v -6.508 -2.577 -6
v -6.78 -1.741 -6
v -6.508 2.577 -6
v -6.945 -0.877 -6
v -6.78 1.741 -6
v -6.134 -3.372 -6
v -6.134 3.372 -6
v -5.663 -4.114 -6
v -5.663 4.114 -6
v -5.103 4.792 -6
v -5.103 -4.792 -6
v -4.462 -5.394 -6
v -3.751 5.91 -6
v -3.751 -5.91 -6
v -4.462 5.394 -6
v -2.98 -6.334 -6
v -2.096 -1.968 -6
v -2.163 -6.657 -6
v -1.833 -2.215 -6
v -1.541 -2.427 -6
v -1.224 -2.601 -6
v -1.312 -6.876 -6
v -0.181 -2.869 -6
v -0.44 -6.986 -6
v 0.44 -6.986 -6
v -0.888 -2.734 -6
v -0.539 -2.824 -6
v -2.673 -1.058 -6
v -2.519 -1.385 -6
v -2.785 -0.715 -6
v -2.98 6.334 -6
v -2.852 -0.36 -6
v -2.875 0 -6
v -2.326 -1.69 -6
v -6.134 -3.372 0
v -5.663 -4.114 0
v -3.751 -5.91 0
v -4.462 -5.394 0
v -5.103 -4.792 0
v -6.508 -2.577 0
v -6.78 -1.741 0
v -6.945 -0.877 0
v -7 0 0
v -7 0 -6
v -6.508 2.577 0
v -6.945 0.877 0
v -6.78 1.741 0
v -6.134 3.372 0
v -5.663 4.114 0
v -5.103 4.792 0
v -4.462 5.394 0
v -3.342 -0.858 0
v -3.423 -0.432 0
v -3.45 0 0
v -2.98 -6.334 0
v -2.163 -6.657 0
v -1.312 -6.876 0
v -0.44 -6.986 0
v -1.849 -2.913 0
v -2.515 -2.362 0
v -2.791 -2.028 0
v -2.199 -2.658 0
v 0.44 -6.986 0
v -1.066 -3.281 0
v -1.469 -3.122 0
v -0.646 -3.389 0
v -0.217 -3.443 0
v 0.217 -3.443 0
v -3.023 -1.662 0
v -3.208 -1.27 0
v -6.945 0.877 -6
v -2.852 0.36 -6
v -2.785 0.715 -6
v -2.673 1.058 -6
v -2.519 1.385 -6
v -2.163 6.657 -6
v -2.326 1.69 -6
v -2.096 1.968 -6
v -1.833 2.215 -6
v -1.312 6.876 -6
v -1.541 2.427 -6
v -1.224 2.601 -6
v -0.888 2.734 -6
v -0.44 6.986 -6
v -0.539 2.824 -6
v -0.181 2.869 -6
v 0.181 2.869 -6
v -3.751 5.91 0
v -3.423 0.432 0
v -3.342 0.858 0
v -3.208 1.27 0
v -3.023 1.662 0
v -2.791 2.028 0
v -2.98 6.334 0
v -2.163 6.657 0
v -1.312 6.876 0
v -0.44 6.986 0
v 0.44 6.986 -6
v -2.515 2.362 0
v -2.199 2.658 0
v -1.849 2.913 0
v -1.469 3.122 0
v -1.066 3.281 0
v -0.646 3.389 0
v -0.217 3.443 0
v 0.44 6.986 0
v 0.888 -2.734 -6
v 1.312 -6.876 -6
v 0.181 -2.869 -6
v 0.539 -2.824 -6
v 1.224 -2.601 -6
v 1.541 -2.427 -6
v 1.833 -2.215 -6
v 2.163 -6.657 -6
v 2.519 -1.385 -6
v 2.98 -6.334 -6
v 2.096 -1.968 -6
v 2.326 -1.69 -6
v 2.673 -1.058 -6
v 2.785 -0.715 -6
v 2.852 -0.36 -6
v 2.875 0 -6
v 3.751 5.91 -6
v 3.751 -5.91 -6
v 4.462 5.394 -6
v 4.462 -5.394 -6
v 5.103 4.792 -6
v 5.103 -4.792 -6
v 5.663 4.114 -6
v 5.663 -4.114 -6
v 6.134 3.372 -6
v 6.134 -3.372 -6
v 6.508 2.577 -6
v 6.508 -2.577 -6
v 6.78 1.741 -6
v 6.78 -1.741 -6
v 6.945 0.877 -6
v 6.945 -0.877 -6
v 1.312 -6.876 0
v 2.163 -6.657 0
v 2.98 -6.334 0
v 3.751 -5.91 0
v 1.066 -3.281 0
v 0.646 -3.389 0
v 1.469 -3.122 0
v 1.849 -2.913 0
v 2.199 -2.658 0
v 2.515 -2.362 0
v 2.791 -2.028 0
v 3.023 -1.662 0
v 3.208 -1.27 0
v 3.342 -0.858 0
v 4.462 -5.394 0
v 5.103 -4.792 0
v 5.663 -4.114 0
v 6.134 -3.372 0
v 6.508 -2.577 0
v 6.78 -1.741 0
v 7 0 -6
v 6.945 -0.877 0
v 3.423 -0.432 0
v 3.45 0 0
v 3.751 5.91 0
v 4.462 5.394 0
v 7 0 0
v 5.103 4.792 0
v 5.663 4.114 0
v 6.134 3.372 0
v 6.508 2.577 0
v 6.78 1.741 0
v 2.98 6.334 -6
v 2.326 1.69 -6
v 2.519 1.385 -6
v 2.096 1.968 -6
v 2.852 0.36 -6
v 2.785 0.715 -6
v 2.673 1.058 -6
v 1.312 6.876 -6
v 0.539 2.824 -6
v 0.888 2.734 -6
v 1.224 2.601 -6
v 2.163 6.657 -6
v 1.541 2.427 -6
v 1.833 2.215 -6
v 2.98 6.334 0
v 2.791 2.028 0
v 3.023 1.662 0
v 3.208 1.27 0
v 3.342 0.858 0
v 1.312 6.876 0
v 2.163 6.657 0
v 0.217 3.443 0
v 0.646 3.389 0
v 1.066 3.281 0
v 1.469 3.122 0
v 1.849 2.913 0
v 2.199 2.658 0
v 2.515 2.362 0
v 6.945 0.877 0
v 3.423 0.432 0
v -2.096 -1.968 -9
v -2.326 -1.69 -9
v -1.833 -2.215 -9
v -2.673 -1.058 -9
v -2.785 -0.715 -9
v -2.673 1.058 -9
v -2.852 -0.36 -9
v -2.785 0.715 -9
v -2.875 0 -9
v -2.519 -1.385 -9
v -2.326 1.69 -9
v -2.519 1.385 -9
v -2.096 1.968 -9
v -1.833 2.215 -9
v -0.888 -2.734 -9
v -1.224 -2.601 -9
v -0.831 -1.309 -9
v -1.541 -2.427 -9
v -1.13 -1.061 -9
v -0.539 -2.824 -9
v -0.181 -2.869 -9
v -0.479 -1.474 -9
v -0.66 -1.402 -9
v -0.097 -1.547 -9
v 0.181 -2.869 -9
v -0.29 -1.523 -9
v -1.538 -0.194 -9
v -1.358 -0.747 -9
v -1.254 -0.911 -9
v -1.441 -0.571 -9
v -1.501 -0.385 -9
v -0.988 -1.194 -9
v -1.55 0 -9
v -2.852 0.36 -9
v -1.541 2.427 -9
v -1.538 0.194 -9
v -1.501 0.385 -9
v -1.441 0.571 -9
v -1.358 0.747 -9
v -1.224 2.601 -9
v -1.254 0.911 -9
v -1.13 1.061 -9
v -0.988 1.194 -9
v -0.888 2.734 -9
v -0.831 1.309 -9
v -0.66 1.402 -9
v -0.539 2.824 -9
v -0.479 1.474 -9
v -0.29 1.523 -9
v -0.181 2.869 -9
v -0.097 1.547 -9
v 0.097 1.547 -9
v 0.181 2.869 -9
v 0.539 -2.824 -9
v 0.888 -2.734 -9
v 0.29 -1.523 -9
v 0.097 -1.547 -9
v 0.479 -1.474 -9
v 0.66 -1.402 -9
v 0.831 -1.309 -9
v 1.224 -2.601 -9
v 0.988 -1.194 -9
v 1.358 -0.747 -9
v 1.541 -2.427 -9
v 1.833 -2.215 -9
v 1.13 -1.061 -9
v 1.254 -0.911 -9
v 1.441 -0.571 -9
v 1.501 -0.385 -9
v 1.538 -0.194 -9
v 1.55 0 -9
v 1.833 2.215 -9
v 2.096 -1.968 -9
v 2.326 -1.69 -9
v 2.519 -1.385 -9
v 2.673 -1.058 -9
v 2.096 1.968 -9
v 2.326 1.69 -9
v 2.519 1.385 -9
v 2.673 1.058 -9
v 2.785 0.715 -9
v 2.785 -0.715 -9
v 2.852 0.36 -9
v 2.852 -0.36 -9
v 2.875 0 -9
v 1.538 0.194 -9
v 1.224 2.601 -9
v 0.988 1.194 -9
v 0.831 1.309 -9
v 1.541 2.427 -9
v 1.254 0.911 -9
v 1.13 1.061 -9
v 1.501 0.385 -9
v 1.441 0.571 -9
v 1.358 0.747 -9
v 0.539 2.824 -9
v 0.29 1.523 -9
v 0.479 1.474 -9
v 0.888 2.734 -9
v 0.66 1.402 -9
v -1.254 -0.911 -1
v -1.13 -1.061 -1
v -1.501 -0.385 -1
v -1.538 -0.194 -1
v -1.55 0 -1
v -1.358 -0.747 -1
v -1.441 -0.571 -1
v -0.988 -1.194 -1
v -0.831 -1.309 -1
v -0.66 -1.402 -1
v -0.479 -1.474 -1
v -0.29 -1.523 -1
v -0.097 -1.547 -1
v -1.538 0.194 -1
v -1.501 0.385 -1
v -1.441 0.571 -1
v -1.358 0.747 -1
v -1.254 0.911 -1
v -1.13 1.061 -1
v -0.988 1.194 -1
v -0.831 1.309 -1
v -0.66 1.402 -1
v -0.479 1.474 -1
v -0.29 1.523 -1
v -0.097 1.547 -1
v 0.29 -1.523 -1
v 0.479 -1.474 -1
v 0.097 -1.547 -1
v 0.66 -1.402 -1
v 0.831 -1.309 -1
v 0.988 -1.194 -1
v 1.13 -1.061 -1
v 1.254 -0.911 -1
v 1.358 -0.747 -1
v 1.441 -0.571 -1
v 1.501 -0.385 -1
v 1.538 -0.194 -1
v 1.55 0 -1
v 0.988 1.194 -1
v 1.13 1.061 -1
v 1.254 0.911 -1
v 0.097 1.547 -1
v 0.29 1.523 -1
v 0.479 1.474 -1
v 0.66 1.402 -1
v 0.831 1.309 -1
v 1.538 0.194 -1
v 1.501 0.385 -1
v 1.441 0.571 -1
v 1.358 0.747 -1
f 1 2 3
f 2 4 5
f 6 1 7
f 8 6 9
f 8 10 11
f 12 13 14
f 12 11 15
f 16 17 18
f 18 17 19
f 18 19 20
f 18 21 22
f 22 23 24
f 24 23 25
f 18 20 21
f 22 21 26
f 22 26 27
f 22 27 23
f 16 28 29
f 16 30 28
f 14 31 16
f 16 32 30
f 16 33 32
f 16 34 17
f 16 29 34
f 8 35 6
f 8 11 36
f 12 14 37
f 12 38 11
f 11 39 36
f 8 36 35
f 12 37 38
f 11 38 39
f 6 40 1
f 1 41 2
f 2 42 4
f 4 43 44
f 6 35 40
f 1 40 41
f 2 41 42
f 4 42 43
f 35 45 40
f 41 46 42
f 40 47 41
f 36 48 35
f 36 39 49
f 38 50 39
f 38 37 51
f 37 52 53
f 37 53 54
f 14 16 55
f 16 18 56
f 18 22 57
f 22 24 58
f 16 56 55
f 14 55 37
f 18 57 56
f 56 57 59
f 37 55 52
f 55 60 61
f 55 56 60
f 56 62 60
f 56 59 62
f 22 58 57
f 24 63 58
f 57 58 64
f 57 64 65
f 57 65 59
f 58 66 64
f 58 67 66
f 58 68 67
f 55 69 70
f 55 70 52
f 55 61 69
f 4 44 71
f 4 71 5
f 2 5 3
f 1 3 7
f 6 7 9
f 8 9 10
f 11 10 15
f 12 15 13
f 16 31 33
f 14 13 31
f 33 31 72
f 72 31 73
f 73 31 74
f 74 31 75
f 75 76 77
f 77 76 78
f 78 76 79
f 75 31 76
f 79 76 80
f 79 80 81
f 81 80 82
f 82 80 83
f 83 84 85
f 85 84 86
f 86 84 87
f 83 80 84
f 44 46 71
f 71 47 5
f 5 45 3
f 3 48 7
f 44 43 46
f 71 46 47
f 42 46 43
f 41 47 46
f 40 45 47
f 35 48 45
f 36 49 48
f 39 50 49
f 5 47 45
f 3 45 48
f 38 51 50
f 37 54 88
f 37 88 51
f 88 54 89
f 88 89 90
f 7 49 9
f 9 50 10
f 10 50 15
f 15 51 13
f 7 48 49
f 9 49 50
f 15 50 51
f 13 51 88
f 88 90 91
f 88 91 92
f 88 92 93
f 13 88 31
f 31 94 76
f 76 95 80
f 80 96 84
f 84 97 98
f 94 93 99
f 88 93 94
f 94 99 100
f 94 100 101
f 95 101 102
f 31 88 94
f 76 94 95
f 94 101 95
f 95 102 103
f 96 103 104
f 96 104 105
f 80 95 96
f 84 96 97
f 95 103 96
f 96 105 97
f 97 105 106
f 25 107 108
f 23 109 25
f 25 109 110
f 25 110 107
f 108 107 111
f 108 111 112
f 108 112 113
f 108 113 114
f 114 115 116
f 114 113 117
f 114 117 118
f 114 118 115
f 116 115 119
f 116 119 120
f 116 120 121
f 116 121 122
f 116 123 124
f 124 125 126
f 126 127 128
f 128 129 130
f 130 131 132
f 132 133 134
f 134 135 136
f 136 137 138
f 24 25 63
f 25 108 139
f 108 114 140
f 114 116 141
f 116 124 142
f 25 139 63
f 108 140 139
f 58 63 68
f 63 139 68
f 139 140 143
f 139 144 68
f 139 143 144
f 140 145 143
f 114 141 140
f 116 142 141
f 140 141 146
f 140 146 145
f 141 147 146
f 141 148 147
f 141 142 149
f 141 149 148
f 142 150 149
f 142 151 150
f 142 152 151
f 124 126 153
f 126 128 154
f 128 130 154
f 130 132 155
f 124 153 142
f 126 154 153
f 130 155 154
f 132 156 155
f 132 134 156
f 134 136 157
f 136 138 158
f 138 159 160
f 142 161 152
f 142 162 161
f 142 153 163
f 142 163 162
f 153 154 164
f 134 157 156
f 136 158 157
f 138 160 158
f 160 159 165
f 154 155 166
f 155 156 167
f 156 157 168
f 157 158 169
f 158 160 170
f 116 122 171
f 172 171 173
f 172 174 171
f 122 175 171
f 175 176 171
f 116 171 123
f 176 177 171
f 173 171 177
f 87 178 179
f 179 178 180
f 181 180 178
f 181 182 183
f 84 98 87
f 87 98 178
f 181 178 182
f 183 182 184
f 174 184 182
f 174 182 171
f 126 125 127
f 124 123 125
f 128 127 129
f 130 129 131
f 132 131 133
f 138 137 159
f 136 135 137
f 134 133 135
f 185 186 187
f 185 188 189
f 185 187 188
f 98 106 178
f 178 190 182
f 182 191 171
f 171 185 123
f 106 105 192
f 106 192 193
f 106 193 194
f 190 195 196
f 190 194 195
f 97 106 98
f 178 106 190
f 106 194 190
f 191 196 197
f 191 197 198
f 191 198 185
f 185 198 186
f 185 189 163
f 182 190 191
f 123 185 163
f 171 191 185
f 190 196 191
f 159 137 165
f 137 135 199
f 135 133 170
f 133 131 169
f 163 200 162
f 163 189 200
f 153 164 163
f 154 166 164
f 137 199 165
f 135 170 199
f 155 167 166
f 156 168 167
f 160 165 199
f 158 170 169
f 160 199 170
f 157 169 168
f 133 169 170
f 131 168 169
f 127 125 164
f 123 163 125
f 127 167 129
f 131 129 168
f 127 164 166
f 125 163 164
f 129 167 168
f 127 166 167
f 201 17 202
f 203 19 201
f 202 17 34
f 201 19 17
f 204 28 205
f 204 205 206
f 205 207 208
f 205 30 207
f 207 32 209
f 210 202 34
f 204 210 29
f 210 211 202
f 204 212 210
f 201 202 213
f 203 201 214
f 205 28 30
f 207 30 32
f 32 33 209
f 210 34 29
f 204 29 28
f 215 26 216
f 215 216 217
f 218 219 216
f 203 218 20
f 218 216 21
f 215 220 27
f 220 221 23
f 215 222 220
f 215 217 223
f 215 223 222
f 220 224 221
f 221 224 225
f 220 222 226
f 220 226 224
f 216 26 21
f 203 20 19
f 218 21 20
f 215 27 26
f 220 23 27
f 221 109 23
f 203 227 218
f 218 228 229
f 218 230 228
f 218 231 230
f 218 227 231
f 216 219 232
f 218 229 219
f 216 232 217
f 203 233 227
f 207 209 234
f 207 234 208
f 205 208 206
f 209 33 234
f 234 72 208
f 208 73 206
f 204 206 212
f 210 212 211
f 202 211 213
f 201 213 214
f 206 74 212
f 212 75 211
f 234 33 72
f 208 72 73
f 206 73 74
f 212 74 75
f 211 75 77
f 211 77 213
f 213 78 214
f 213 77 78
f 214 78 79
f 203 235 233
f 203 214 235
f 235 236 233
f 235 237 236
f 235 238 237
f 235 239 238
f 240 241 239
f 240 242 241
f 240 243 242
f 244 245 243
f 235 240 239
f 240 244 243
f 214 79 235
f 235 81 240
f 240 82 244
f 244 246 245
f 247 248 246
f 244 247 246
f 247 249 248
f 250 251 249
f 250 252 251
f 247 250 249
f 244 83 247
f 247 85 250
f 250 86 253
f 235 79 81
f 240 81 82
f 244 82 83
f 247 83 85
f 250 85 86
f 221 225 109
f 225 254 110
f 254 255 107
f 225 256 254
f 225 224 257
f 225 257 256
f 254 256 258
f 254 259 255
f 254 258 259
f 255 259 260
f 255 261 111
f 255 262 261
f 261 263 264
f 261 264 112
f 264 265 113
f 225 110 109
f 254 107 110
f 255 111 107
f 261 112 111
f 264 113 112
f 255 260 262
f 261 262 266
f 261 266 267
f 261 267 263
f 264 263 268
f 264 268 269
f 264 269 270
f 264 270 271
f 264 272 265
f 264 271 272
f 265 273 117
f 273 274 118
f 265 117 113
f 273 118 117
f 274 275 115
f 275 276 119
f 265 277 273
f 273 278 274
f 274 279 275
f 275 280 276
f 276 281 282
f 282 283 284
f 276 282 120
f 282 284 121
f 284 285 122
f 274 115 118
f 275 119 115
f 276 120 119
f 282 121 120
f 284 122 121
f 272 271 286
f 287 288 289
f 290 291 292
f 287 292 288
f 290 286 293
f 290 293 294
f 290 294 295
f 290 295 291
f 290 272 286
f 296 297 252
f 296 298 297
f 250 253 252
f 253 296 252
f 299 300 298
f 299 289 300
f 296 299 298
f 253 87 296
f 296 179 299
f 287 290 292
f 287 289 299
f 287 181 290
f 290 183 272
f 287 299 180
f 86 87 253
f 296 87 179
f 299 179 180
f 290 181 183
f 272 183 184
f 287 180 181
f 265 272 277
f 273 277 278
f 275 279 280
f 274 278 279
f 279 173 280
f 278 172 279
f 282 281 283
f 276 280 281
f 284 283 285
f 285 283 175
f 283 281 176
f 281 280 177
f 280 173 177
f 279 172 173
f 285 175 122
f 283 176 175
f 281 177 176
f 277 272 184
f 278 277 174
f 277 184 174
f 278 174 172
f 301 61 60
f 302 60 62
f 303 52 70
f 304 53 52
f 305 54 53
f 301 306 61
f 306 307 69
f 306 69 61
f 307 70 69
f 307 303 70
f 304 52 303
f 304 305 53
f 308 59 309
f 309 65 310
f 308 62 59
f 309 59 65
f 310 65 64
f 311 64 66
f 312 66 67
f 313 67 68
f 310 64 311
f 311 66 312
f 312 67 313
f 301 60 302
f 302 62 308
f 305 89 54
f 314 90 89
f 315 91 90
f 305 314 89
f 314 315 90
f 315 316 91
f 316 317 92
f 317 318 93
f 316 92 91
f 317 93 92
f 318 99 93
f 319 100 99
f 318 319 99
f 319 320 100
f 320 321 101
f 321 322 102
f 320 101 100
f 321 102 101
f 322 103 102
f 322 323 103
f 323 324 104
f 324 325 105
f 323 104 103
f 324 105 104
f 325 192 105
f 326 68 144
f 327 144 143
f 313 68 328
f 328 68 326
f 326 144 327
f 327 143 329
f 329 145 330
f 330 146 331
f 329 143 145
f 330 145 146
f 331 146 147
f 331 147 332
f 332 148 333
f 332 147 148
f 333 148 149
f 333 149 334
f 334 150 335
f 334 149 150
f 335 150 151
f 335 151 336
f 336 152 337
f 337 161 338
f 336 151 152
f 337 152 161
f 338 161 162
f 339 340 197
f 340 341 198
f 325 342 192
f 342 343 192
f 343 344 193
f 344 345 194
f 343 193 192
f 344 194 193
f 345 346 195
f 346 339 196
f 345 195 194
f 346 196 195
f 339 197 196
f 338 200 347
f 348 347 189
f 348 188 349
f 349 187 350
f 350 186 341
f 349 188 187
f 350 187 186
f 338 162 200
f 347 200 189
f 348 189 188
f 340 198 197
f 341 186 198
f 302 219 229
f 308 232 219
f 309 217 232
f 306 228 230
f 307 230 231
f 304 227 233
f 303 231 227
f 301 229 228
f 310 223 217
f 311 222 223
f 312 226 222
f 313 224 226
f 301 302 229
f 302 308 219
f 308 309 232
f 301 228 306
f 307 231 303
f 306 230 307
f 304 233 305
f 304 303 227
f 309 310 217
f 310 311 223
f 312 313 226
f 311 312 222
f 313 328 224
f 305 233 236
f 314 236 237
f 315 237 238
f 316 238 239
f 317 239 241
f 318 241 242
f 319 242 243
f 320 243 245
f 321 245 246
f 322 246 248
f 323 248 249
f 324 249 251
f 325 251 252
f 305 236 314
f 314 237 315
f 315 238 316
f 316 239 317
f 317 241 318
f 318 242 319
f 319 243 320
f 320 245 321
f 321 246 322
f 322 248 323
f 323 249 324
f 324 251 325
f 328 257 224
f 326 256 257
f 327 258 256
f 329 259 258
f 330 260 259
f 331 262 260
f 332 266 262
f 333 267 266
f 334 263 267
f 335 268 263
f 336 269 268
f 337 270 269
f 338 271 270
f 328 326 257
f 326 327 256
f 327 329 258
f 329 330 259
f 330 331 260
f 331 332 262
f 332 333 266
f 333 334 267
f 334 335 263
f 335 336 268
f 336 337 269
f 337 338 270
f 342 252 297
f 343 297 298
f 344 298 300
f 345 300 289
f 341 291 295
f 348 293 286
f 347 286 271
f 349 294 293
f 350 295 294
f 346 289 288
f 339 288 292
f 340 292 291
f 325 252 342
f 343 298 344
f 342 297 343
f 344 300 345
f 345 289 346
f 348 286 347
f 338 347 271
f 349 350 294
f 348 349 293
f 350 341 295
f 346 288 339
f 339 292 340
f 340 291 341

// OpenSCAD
$fn = 50;

difference() {
	union() {
		translate(v = [0, 0, -6.0]) {
			cylinder(h = 6, r = 7.0);
		}
		#translate(v = [0, 0, -9.0]) {
			cylinder(h = 9, r = 2.875);
		}
	}
	union() {
		translate(v = [0, 0, 0]) {
			rotate(a = [0, 0, 0]) {
				difference() {
					union() {
						translate(v = [0, 0, -9.0]) {
							cylinder(h = 9, r = 1.25);
						}
						translate(v = [0, 0, -1.0]) {
							cylinder(h = 1.0, r1 = 1.55, r2 = 3.45);
						}
						translate(v = [0, 0, -9.0]) {
							cylinder(h = 9, r = 1.55);
						}
						translate(v = [0, 0, -9.0]) {
							cylinder(h = 9, r = 1.25);
						}
					}
					union();
				}
			}
		}
	}
}
